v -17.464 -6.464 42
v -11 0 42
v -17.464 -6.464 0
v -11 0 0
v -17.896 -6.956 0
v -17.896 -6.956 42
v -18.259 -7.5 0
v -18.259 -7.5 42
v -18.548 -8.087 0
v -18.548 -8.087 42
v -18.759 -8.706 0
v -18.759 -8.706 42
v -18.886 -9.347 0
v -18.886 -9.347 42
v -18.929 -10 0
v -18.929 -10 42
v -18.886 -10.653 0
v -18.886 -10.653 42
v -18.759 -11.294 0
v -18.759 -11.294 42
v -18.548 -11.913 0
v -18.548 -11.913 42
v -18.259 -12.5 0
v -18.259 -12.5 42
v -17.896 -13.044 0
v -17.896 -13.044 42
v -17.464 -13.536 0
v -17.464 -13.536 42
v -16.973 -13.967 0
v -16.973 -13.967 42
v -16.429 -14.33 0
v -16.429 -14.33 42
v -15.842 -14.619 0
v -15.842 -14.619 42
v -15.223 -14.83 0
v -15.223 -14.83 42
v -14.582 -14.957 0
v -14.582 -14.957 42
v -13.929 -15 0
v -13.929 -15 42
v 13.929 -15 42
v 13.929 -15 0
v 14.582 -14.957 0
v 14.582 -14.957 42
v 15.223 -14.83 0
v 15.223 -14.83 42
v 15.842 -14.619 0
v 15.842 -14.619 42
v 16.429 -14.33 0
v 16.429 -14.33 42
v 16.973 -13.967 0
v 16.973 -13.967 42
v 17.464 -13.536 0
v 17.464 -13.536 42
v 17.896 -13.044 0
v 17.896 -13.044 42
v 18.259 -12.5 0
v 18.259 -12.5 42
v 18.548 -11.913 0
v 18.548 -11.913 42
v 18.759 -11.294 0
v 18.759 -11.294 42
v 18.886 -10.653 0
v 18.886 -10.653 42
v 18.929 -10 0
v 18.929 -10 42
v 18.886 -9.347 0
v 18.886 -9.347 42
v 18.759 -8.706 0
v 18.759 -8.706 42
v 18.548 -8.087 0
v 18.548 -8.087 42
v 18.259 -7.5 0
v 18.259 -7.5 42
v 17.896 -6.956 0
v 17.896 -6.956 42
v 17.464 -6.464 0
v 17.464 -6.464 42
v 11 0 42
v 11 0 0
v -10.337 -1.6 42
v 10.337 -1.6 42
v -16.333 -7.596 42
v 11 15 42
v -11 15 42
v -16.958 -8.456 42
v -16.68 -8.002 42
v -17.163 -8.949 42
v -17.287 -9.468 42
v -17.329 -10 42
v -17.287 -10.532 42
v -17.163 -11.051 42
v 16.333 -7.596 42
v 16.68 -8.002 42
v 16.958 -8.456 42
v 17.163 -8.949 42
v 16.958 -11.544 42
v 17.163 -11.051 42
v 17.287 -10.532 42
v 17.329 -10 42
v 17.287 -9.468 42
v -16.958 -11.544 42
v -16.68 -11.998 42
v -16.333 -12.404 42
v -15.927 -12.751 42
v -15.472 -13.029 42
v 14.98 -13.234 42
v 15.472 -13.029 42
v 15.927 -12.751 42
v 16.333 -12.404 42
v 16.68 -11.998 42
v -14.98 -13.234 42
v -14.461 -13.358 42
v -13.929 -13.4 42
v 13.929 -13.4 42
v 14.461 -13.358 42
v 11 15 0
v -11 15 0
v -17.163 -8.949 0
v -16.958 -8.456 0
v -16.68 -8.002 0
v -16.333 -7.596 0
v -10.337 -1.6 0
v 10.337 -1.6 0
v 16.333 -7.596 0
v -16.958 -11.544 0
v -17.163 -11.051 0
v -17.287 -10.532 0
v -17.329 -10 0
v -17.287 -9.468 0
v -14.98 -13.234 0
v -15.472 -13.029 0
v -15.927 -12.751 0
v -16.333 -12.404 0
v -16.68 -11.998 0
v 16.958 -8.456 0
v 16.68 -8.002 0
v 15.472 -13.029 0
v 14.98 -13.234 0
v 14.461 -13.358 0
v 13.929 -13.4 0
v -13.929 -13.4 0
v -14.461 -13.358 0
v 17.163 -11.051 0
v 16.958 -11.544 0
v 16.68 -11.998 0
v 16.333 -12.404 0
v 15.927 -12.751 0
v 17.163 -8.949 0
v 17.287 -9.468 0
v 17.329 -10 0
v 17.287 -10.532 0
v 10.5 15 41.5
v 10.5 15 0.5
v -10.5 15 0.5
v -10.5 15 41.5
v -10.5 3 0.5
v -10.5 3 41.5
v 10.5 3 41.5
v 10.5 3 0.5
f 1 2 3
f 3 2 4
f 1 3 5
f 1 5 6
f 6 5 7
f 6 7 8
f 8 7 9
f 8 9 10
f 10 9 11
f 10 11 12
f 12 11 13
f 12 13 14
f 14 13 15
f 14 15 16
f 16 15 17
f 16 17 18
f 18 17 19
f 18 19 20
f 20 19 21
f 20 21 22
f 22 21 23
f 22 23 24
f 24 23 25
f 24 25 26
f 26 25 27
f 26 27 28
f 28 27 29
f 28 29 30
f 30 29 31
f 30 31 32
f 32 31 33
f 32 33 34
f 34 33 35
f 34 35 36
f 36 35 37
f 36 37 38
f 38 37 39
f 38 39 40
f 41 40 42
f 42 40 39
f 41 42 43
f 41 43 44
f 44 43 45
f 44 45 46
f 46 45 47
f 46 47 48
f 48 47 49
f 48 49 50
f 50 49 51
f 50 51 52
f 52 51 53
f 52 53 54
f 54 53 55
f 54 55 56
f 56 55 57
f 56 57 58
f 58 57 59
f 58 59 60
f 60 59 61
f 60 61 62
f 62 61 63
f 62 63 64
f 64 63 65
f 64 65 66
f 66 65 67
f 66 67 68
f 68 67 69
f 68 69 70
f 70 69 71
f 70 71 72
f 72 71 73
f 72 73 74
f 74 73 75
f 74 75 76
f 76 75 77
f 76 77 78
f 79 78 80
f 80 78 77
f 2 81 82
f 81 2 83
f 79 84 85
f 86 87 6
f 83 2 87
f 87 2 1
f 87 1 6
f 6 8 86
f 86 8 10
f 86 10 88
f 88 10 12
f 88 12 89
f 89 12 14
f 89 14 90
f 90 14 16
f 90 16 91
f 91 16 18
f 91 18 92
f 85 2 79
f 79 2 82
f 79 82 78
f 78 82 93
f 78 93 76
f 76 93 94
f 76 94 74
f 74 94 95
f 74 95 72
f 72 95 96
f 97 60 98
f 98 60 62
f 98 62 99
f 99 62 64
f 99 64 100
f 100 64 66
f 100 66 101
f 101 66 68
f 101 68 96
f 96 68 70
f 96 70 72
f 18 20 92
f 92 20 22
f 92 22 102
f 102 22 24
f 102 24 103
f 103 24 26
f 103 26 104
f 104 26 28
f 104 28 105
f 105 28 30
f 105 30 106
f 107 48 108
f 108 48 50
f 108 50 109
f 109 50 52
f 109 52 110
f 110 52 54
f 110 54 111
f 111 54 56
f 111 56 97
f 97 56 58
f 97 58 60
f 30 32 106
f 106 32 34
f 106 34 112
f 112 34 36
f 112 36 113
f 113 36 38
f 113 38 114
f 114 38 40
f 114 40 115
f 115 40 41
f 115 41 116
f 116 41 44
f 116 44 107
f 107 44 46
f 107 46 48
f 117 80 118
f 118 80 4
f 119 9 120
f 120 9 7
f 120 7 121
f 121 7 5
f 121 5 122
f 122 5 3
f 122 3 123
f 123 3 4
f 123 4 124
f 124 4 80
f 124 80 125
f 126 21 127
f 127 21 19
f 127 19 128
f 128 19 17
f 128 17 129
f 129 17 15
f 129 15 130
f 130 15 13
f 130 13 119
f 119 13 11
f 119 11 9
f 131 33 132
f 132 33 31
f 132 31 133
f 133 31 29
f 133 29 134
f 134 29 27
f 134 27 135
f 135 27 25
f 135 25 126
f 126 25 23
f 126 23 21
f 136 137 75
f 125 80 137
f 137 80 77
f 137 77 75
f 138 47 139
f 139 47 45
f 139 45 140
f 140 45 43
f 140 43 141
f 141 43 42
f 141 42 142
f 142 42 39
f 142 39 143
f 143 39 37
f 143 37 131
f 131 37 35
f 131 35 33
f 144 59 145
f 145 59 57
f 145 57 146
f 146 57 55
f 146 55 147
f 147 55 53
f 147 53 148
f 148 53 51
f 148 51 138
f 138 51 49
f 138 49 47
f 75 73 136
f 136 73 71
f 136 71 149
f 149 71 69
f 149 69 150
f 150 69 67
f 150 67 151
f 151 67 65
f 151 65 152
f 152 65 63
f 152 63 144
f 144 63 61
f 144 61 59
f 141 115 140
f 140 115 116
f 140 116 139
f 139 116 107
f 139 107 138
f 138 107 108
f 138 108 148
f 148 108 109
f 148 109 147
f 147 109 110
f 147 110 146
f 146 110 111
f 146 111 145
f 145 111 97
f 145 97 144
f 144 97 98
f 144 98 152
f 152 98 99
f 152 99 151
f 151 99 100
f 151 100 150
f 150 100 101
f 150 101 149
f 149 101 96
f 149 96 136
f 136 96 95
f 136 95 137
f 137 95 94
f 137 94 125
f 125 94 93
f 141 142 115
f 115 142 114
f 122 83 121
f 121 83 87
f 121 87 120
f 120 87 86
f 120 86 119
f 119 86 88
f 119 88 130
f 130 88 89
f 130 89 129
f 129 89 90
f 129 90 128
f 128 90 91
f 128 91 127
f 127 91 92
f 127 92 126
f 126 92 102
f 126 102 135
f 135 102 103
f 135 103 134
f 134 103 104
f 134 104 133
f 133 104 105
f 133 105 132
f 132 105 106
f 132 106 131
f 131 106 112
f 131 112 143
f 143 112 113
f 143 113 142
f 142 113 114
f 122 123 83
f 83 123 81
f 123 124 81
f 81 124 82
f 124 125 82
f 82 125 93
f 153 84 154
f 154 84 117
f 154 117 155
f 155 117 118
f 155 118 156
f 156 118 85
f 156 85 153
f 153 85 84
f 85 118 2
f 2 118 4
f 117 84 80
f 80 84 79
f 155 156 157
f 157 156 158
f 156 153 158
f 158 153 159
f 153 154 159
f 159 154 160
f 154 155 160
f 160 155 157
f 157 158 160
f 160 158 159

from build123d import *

# Parameters (mm, degrees)
BOSS_EXTRUDE1_DEPTH = 42
CUT_EXTRUDE1_DEPTH  = 43
SKETCH2_W           = 22
SKETCH2_H           = 42
SKETCH2_W_2         = 21
SKETCH2_H_2         = 41
BOSS_EXTRUDE2_DEPTH = 15
SKETCH2_2_W         = 21
SKETCH2_2_H         = 41
BOSS_EXTRUDE3_DEPTH = 3


with BuildPart() as part:
    # Sketch1 → Boss-Extrude1 (new body)
    with BuildSketch(Plane.XY):
        with BuildLine():
            Line((-11, 0), (11, 0))
            Line((11, 0), (17.464466094, -6.464466094))
            ThreePointArc((17.464466094, -6.464466094), (18.548329851, -11.913417162), (13.928932188, -15))
            Line((13.928932188, -15), (-13.928932188, -15))
            ThreePointArc((-13.928932188, -15), (-18.548329851, -11.913417162), (-17.464466094, -6.464466094))
            Line((-17.464466094, -6.464466094), (-11, 0))
        make_face()
    extrude(amount=BOSS_EXTRUDE1_DEPTH)

    # Sketch3 → Cut-Extrude1 (cut, through all)
    with BuildSketch(Plane.XY.offset(42)):
        with BuildLine():
            Line((-13.928932188, -13.4), (13.928932188, -13.4))
            ThreePointArc((13.928932188, -13.4), (17.070122599, -11.30112367), (16.333095244, -7.595836944))
            Line((16.333095244, -7.595836944), (10.3372583, -1.6))
            Line((10.3372583, -1.6), (-10.3372583, -1.6))
            Line((-10.3372583, -1.6), (-16.333095244, -7.595836944))
            ThreePointArc((-16.333095244, -7.595836944), (-17.070122599, -11.30112367), (-13.928932188, -13.4))
        make_face()
    extrude(amount=-CUT_EXTRUDE1_DEPTH, mode=Mode.SUBTRACT)

    # Sketch2 → Boss-Extrude2 (add)
    with BuildSketch(Plane(origin=(0, 0, 0), x_dir=(1, 0, 0), z_dir=(0, 1, 0))):
        with Locations((0, -21)):
            Rectangle(SKETCH2_W, SKETCH2_H)
        with Locations((0, -21)):
            Rectangle(SKETCH2_W_2, SKETCH2_H_2, mode=Mode.SUBTRACT)
    extrude(amount=BOSS_EXTRUDE2_DEPTH)

    # Sketch2<2> → Boss-Extrude3 (add)
    with BuildSketch(Plane(origin=(0, 0, 0), x_dir=(1, 0, 0), z_dir=(0, 1, 0))):
        with Locations((0, -21)):
            Rectangle(SKETCH2_2_W, SKETCH2_2_H)
    extrude(amount=BOSS_EXTRUDE3_DEPTH)


solid = part.part
